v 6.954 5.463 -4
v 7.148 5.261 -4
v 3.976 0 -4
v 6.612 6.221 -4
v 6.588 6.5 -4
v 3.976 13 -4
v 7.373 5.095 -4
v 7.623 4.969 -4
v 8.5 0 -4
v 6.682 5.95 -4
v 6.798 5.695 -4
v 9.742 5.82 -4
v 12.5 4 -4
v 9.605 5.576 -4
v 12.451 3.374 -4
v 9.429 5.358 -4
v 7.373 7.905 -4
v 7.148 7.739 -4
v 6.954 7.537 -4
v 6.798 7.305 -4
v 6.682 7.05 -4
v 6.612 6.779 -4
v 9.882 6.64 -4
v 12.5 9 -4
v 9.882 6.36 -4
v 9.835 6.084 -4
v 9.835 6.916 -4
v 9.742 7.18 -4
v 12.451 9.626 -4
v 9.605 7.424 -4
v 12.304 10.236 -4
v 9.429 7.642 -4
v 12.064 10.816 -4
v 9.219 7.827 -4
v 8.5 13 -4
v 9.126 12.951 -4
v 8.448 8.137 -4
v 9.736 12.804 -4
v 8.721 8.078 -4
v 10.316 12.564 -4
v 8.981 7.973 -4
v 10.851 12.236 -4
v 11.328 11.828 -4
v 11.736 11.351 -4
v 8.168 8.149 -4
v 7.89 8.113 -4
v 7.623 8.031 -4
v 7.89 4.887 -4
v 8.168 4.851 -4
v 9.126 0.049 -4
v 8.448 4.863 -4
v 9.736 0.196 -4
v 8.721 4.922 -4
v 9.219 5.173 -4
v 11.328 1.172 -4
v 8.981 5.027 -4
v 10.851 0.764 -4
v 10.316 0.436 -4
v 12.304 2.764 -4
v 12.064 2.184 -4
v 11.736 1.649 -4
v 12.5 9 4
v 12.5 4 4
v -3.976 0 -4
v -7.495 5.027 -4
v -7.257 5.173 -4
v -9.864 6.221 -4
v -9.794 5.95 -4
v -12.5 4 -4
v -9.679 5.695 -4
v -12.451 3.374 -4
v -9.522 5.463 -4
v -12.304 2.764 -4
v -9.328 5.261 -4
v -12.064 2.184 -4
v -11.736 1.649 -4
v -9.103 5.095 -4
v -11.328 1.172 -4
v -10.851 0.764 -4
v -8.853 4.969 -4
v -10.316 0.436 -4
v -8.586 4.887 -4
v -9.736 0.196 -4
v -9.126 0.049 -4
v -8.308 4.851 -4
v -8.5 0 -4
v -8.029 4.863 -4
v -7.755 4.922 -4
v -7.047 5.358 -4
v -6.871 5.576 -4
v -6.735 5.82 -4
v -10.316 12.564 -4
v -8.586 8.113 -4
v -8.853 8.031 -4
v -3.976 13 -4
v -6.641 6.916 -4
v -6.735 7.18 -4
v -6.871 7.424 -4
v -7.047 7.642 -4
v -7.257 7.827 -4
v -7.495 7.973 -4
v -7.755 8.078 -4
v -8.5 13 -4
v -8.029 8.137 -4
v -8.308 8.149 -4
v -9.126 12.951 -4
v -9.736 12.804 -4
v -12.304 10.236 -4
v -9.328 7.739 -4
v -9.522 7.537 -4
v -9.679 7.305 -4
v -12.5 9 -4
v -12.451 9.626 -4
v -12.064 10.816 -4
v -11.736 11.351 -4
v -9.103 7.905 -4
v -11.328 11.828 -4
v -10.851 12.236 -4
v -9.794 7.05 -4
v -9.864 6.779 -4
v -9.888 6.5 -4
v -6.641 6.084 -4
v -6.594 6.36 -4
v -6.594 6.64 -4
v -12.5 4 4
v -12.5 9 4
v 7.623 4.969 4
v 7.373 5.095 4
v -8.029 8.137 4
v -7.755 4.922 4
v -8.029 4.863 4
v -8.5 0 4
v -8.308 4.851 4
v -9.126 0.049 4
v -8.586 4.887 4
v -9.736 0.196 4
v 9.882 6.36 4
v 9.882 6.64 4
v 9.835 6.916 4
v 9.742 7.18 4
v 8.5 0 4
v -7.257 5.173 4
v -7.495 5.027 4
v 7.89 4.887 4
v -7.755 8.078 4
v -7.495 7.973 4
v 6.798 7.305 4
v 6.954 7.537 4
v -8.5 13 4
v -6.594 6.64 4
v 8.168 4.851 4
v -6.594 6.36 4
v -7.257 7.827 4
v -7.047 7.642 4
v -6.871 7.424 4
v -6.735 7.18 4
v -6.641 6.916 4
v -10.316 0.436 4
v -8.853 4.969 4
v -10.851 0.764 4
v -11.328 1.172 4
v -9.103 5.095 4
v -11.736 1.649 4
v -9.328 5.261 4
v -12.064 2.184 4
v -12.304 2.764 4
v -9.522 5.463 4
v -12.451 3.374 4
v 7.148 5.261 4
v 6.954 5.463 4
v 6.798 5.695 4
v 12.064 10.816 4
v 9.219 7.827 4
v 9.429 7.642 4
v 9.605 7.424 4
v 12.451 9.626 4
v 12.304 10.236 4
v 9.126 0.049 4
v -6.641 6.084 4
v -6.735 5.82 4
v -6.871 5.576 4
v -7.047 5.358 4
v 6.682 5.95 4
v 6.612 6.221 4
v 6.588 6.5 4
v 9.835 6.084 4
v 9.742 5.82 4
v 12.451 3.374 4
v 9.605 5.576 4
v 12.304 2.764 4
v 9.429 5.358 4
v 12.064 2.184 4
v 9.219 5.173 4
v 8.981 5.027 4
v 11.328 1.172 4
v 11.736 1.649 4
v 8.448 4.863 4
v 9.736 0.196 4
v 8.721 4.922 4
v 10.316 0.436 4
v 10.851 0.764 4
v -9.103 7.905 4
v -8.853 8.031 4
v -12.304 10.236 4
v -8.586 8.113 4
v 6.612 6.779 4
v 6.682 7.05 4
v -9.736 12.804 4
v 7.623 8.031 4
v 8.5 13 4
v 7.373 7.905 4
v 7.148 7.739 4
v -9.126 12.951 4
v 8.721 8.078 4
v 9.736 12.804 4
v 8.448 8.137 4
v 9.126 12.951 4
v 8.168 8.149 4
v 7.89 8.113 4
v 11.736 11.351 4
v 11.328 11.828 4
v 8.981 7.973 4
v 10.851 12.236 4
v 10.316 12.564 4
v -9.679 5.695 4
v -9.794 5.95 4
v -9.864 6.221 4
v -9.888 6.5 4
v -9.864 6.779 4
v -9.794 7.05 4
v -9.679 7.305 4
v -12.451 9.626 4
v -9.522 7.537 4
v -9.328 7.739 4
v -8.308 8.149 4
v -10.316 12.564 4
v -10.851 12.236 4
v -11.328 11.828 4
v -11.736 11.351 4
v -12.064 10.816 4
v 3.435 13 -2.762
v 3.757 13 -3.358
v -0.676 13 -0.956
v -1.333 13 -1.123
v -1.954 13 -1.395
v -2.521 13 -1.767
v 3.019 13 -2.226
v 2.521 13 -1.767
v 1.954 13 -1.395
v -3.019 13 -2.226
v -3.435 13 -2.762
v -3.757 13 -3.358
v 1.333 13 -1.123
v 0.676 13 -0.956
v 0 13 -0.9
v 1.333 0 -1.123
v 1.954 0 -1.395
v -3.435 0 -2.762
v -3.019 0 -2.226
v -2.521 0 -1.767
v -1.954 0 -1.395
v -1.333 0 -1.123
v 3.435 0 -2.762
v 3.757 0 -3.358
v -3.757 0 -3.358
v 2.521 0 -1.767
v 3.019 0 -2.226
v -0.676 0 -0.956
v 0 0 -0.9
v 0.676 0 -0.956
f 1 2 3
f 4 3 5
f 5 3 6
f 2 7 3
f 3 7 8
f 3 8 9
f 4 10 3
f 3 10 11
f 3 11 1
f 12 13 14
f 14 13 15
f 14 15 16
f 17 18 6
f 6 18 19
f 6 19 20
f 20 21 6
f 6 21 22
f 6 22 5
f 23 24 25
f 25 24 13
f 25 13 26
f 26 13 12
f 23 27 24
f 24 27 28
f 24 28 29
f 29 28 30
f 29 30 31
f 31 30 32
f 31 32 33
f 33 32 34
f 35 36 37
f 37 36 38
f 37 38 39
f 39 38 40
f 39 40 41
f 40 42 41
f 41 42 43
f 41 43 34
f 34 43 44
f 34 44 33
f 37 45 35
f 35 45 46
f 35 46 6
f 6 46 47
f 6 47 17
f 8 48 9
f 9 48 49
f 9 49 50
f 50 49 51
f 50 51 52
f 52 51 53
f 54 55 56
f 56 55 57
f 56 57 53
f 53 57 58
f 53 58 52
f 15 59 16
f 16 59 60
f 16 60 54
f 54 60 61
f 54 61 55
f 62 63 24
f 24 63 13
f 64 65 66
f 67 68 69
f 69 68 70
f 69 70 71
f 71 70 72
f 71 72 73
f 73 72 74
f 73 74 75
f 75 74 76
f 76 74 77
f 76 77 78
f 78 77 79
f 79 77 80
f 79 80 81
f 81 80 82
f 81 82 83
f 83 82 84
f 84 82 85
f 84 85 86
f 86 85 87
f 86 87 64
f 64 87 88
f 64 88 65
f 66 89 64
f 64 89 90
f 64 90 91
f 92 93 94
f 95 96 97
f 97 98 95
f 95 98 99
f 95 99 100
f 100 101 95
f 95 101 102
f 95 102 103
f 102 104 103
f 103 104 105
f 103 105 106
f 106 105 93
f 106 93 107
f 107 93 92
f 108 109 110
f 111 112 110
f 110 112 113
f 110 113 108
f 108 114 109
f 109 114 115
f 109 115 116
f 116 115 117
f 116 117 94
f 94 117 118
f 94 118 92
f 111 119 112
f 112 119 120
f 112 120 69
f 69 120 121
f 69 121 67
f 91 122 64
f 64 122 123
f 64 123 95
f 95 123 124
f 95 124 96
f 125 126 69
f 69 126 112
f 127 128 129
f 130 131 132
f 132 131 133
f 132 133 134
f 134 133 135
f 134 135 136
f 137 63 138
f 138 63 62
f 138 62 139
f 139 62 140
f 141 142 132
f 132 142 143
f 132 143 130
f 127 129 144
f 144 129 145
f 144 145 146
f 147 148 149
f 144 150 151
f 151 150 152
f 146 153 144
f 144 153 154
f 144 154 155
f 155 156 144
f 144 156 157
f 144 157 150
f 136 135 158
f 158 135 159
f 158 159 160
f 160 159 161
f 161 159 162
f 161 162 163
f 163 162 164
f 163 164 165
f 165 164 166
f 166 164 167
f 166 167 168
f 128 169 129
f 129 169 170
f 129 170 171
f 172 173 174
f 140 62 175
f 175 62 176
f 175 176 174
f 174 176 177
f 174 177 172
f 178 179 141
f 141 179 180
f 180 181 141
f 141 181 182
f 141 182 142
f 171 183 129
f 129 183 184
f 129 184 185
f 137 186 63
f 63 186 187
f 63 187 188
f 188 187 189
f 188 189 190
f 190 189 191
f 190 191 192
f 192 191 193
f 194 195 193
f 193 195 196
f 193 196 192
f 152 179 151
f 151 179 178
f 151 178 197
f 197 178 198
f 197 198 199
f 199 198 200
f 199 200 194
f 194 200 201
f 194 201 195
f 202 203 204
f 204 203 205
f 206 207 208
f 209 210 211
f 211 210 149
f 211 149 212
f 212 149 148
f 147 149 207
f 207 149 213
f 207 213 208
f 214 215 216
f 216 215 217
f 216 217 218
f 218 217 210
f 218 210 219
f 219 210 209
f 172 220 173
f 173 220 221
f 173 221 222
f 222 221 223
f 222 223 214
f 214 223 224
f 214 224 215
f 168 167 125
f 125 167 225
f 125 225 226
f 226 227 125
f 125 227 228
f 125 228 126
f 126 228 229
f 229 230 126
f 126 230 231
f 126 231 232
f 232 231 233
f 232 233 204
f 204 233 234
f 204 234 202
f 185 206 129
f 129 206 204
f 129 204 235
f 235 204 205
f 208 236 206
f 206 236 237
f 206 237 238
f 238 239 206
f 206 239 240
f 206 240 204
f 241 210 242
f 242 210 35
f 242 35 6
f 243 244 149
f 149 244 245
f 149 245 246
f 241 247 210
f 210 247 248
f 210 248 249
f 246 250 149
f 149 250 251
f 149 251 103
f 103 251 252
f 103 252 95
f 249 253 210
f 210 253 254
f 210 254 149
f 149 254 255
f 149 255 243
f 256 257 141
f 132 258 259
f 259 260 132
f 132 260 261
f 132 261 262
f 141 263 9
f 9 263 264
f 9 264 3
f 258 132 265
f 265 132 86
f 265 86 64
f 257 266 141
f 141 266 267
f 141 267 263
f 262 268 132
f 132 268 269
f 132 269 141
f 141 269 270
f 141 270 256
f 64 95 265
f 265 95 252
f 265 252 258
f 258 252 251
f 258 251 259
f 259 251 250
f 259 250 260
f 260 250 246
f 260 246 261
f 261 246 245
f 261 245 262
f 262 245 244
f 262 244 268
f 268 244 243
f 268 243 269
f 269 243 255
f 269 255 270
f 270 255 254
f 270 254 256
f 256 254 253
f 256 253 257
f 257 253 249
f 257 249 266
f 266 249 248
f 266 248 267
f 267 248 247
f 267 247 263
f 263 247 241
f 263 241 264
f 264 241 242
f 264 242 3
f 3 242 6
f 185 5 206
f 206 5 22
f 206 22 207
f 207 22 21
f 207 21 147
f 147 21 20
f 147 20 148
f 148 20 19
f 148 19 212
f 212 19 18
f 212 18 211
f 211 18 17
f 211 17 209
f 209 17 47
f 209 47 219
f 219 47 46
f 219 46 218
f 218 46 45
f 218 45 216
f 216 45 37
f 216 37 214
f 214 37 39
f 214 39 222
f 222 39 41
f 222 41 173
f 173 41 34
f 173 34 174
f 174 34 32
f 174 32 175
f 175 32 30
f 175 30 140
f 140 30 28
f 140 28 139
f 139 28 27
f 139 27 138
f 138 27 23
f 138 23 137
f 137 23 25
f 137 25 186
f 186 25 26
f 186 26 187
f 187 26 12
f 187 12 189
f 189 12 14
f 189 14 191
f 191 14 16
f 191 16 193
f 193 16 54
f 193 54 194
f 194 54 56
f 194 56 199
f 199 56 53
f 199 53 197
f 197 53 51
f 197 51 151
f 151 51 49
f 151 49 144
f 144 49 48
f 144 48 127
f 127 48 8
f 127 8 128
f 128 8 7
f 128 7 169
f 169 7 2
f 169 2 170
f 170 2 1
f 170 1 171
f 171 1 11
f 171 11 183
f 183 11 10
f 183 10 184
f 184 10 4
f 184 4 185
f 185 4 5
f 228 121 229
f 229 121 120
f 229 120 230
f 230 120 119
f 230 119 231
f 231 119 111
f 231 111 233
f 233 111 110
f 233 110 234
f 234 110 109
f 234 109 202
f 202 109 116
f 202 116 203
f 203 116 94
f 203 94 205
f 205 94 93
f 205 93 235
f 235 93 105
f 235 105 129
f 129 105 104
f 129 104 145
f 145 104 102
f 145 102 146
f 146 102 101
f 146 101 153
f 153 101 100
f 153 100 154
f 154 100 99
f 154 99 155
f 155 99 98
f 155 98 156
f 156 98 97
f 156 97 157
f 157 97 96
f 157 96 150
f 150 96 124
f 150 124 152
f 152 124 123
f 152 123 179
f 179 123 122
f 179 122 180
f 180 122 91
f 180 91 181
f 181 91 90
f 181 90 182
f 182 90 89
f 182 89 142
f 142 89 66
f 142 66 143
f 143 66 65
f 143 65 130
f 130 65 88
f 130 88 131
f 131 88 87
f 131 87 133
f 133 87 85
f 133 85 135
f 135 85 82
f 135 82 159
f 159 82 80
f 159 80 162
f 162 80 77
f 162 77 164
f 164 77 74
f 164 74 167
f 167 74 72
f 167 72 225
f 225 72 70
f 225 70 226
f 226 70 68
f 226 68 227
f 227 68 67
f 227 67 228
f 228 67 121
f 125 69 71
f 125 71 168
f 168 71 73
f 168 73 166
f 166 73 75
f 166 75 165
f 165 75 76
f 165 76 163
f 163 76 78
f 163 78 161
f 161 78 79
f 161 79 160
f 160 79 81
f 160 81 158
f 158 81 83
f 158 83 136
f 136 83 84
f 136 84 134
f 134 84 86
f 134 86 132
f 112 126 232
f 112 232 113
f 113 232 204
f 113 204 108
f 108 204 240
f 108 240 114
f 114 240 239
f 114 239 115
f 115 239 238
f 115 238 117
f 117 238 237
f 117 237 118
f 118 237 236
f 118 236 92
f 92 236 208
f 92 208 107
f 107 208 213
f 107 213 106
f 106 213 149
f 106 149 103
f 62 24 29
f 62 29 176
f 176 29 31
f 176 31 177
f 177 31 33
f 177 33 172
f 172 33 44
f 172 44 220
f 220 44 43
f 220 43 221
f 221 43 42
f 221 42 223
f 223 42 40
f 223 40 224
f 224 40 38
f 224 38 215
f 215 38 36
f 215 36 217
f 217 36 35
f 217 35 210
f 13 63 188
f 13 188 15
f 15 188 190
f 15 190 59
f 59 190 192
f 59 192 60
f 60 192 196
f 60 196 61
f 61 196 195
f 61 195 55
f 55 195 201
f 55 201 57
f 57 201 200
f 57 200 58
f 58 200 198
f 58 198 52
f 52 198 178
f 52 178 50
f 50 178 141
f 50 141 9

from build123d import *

# Parameters (mm, degrees)
SKETCH1_W           = 25
SKETCH1_H           = 8
BOSS_EXTRUDE1_DEPTH = 13
SKETCH2_R           = 4.1
CUT_EXTRUDE1_DEPTH  = 19.472953202
SKETCH3_R           = 1.65
CUT_EXTRUDE2_DEPTH  = 10
FILLET2_R           = 4


with BuildPart() as part:
    # Sketch1 → Boss-Extrude1 (new body)
    with BuildSketch(Plane(origin=(0, 0, 0), x_dir=(1, 0, 0), z_dir=(0, 1, 0))):
        Rectangle(SKETCH1_W, SKETCH1_H)
    extrude(amount=BOSS_EXTRUDE1_DEPTH)

    # Sketch2 → Cut-Extrude1 (cut, through all)
    with BuildSketch(Plane(origin=(0, 13, 0), x_dir=(1, 0, 0), z_dir=(0, 1, 0))):
        with Locations((0, 5)):
            Circle(SKETCH2_R)
    extrude(amount=-CUT_EXTRUDE1_DEPTH, mode=Mode.SUBTRACT)

    # Sketch3 → Cut-Extrude2 (cut)
    with BuildSketch(Plane(origin=(0, 0, -4), x_dir=(-1, 0, 0), z_dir=(0, 0, -1))):
        with Locations((8.238089535, 6.5)):
            Circle(SKETCH3_R)
        with Locations((-8.238089535, 6.5)):
            Circle(SKETCH3_R)
    extrude(amount=-CUT_EXTRUDE2_DEPTH, mode=Mode.SUBTRACT)

    # Fillet2
    fillet2_edges = [part.edges().sort_by_distance(p)[0] for p in [
        (-12.5, 13, 0),
        (12.5, 13, 0),
        (-12.5, 0, 0),
        (12.5, 0, 0),
    ]]
    fillet(fillet2_edges, radius=FILLET2_R)


solid = part.part
